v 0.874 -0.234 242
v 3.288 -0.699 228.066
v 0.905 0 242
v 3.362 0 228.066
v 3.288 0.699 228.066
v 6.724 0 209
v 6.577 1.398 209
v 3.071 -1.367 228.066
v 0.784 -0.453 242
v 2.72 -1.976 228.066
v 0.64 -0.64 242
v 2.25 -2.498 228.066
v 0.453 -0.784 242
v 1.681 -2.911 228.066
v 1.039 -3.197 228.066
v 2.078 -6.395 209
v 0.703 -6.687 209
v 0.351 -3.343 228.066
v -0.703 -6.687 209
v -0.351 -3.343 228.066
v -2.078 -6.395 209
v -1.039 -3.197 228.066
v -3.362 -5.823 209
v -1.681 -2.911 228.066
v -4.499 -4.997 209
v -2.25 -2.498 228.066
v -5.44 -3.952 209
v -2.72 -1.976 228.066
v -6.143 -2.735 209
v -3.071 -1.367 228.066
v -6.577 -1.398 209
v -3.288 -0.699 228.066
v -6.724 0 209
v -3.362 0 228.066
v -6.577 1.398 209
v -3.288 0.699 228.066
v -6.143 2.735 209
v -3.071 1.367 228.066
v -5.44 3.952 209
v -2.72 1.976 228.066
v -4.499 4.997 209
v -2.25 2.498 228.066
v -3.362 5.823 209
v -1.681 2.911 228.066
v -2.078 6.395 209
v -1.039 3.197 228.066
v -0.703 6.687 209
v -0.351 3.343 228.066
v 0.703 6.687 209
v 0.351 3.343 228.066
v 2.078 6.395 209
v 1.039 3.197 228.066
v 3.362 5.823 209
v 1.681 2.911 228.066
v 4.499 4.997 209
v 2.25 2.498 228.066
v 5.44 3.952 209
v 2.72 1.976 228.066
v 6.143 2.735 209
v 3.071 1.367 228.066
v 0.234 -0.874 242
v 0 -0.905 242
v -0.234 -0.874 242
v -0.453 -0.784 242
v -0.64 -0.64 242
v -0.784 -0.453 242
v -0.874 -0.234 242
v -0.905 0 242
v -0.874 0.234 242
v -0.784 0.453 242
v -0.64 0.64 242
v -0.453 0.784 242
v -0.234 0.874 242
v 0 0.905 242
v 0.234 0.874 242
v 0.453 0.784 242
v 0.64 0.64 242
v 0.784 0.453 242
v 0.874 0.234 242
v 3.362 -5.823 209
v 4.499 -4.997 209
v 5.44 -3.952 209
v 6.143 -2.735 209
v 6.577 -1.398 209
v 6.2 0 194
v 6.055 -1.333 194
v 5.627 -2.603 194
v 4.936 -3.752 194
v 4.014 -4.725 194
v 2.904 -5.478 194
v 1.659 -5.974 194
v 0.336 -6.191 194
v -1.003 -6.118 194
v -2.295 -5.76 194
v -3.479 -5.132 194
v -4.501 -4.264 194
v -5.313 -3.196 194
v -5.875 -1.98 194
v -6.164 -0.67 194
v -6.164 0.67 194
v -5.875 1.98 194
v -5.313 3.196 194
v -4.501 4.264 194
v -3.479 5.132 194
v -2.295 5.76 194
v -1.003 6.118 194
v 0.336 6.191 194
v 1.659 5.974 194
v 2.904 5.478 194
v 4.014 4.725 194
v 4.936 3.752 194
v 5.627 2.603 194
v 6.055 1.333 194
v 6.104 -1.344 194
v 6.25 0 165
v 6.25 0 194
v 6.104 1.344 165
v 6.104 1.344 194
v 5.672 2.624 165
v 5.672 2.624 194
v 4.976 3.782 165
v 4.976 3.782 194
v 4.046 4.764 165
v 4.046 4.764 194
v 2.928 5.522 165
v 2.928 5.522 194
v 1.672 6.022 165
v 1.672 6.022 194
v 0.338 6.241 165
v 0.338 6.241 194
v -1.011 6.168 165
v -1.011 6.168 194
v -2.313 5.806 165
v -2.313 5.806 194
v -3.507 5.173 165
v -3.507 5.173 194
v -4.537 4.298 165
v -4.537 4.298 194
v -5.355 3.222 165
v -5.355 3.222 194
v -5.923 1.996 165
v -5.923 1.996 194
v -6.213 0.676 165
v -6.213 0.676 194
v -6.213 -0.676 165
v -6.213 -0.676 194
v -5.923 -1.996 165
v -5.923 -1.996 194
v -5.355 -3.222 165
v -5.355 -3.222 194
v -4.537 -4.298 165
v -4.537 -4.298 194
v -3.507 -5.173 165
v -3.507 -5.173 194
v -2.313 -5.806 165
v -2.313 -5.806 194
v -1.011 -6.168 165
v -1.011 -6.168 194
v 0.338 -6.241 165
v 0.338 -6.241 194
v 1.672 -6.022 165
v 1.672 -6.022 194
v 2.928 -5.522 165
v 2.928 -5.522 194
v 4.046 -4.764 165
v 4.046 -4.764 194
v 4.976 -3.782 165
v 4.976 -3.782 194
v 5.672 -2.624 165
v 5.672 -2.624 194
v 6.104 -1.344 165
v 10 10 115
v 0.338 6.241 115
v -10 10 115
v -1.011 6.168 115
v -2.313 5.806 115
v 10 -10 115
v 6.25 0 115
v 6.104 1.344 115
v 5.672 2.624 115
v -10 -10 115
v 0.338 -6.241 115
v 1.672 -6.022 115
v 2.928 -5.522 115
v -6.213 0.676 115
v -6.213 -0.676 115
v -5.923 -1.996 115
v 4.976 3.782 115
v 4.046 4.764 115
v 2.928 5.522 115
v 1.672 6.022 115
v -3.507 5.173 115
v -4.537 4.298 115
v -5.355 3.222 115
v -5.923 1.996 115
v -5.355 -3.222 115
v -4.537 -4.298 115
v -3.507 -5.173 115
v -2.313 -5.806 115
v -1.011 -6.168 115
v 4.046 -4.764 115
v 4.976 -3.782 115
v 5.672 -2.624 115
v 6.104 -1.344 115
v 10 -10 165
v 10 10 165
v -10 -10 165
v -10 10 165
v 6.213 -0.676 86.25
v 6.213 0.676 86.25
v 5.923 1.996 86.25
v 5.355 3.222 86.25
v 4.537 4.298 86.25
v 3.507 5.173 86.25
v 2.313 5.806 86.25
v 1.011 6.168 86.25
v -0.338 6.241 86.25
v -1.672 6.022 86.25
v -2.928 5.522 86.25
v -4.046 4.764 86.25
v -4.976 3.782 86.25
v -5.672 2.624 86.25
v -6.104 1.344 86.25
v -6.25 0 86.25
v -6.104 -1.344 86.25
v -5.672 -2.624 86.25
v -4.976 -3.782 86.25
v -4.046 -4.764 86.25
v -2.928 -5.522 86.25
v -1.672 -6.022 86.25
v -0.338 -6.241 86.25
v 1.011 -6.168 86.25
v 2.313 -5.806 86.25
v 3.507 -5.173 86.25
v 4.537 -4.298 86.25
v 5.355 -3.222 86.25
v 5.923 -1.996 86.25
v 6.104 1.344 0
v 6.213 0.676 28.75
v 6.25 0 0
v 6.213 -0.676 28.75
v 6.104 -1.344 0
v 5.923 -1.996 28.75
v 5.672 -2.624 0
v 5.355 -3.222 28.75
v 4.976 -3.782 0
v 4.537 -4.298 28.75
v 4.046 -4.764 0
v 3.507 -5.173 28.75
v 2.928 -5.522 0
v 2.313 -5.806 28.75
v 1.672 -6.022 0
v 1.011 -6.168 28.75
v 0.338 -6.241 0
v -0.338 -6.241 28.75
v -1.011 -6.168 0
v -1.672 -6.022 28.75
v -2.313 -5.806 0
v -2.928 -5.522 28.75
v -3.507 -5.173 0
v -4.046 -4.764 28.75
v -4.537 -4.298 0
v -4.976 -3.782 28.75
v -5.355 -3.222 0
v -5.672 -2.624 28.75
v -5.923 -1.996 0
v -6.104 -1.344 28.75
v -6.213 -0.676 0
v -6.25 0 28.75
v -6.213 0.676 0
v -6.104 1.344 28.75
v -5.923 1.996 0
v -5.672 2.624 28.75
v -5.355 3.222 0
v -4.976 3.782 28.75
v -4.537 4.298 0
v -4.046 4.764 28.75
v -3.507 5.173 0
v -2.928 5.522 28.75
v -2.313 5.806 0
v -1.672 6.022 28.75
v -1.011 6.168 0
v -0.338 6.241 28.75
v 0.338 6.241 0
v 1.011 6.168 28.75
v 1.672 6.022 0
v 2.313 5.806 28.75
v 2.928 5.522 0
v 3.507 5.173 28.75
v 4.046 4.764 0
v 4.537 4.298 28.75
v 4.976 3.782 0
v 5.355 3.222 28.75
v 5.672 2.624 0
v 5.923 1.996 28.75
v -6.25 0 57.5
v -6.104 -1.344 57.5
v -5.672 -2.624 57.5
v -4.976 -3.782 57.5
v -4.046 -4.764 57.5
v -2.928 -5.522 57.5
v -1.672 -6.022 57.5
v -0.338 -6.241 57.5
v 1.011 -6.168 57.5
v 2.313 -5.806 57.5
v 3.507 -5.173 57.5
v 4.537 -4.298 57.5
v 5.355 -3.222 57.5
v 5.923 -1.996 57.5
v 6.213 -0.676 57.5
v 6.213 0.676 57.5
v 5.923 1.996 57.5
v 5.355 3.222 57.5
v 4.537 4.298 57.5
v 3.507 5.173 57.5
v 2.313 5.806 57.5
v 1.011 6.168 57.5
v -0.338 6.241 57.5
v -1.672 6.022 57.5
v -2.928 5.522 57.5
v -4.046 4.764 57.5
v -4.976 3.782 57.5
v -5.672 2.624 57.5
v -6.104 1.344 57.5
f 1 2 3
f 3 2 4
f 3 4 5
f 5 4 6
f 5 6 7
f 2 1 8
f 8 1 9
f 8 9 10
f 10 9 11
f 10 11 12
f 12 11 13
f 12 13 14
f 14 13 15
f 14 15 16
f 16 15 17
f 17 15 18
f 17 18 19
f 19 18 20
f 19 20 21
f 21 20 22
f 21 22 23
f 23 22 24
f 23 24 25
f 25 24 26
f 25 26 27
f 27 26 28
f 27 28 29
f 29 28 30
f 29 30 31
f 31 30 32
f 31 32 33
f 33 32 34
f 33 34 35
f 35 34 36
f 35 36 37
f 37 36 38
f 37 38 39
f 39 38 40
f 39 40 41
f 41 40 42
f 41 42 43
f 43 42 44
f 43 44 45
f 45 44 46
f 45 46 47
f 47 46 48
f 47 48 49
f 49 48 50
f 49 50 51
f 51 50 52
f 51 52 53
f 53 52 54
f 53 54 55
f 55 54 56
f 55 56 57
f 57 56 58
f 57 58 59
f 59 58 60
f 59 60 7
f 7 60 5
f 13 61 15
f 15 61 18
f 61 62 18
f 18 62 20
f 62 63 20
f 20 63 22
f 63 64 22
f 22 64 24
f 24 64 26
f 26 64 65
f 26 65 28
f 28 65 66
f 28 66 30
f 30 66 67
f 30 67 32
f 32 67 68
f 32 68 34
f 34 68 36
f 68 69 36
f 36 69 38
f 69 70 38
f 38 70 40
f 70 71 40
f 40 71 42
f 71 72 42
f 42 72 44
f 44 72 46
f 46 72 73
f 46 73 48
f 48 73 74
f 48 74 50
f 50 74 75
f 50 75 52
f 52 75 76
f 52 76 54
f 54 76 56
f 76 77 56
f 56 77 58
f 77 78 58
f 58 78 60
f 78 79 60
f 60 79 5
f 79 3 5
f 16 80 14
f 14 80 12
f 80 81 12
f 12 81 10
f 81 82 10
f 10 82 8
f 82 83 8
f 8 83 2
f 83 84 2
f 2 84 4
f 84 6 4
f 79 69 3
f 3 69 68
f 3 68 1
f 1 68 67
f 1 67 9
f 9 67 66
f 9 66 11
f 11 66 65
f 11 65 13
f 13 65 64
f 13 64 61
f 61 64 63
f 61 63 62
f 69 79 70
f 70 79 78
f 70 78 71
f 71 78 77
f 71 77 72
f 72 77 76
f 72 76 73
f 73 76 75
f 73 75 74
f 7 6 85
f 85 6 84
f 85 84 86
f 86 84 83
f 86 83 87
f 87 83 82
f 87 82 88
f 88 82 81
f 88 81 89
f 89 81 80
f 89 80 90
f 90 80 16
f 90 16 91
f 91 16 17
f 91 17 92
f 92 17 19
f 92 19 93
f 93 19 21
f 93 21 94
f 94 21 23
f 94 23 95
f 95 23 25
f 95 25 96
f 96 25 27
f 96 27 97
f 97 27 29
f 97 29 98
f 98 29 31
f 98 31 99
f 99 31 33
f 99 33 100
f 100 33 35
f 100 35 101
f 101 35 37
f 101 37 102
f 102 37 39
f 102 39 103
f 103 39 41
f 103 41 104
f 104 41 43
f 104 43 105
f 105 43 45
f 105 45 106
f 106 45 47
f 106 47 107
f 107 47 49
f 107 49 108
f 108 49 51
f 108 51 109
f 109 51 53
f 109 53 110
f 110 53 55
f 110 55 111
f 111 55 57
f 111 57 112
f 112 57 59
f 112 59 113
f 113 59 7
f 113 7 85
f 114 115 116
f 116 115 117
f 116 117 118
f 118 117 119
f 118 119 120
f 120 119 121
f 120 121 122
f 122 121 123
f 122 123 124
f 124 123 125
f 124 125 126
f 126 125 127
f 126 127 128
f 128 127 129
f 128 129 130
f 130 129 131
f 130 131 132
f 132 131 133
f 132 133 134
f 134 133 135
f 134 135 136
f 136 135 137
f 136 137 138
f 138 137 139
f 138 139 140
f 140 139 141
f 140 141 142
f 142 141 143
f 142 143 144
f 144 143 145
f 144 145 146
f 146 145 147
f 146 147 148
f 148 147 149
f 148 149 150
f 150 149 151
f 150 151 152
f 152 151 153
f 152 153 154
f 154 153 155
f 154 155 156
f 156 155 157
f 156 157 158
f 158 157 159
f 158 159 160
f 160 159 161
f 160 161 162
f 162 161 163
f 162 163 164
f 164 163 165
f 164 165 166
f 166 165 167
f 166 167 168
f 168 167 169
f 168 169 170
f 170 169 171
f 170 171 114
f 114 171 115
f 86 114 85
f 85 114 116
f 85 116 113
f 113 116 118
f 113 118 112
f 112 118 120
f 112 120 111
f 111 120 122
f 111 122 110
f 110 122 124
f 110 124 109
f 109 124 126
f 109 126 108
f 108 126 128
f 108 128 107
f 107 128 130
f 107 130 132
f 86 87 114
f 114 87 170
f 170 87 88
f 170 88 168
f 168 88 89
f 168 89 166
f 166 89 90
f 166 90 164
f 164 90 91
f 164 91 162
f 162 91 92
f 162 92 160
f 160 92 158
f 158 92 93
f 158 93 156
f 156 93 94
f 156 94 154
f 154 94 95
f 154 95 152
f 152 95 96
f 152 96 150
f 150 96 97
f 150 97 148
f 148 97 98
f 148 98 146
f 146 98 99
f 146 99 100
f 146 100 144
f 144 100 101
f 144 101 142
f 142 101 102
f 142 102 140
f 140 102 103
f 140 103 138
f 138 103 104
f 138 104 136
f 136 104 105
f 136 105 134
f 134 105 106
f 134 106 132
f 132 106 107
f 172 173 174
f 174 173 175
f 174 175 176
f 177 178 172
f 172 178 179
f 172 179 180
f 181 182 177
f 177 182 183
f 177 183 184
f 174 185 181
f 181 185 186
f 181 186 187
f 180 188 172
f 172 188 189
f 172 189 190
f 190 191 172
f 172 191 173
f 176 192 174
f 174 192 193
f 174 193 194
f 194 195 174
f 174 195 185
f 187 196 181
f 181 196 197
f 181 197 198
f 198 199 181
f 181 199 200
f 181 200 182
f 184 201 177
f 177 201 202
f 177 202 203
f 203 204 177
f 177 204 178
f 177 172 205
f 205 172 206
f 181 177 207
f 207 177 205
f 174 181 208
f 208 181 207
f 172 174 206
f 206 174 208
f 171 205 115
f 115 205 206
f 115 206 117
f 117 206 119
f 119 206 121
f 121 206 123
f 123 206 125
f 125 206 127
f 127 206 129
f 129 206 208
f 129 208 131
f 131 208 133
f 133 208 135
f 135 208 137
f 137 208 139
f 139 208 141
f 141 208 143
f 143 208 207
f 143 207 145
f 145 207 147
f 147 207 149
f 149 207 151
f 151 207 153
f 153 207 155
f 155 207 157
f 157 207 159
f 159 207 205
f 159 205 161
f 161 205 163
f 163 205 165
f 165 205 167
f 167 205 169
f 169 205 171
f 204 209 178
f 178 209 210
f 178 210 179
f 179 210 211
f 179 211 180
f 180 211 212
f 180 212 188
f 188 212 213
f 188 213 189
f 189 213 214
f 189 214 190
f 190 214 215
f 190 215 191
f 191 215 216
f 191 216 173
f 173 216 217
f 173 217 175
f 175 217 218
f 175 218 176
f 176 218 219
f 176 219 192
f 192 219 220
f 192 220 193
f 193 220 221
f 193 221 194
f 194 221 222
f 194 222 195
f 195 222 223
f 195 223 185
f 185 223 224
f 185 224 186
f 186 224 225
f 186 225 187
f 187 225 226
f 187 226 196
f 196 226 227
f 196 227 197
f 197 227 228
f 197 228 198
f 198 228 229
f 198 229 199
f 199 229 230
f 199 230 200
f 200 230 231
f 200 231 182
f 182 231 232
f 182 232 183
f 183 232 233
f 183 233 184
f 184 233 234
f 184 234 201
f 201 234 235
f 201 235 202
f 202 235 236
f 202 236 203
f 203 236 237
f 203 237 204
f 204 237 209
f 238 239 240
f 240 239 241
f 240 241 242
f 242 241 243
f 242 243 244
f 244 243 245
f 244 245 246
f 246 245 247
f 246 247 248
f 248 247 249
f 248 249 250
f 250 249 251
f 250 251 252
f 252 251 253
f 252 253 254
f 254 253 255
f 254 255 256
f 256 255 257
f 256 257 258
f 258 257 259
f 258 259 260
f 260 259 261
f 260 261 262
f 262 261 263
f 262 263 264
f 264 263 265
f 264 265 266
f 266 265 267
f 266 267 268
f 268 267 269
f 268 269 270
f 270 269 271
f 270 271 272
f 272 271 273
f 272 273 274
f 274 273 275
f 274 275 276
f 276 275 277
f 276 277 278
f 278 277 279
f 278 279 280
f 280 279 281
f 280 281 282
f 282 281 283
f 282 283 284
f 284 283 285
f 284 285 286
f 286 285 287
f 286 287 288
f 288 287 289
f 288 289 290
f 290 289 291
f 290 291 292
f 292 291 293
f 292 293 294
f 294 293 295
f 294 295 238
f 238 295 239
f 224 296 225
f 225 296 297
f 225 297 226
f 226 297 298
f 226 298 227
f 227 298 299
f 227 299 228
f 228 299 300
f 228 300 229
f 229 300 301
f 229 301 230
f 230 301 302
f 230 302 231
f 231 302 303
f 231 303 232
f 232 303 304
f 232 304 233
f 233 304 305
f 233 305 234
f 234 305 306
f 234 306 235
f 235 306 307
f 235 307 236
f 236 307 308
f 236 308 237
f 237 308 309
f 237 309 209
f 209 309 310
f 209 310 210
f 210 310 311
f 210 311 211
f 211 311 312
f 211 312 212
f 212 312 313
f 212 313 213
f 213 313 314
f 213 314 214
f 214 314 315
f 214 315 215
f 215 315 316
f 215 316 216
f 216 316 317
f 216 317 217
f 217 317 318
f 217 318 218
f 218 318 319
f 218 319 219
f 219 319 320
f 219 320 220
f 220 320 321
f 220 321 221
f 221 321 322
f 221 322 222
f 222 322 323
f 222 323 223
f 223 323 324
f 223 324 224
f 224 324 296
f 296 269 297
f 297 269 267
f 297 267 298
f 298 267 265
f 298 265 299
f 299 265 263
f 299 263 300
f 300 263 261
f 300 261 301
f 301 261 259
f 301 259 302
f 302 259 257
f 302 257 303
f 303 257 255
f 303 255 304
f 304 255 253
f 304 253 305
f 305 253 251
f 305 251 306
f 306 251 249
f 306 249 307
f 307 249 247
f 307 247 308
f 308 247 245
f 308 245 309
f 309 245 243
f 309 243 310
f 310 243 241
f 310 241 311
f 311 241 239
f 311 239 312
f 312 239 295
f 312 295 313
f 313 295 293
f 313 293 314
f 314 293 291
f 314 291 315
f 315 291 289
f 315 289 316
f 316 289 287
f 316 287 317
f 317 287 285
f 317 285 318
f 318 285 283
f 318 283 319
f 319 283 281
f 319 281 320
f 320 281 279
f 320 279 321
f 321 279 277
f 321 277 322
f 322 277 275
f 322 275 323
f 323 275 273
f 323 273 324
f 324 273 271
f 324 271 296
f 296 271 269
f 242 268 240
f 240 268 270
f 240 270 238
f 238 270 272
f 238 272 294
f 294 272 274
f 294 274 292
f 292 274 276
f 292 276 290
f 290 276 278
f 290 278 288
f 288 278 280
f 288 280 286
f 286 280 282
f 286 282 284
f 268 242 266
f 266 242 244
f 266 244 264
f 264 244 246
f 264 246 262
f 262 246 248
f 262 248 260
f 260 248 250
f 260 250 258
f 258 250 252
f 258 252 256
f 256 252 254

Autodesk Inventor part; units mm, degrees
ref_plane "YZ Plane" through (0, 0, 0) normal (1, 0, 0) x (0, 1, 0)
ref_plane "XZ Plane" through (0, 0, 0) normal (0, 1, 0) x (-1, 0, 0)
ref_plane "XY Plane" through (0, 0, 0) normal (0, 0, 1) x (1, 0, 0)
sketch "スケッチ1" plane through (0, 0, 0) normal (0, 0, 1) x (1, 0, 0)
  circle A0 centre (0, 0) radius 6.25
  dimension "d0" = 12.5
extrude "押し出し1" add sketch "スケッチ1" along normal blind 115
sketch "スケッチ2" plane through (0, 0, 115) normal (0, 0, 1) x (1, 0, 0)
  line L0 (10, -10) -> (-10, -10)
  line L1 (-10, -10) -> (-10, 10)
  line L2 (-10, 10) -> (10, 10)
  line L3 (10, 10) -> (10, -10)
  line L4 (10, -10) -> (-10, 10) construction
  line L5 (-10, -10) -> (10, 10) construction
  point P0 (0, 0)
  dimension "d3" = 20
  dimension "d4" = 20
extrude "押し出し2" add sketch "スケッチ2" along normal blind 50
sketch "スケッチ3" plane through (0, 0, 165) normal (0, 0, 1) x (1, 0, 0)
  circle A0 centre (0, 0) radius 6.25
  dimension "d7" = 12.5
extrude "押し出し3" add sketch "スケッチ3" along normal blind 29
sketch "スケッチ4" plane through (0, 0, 194) normal (0, 0, 1) x (1, 0, 0)
  circle A0 centre (0, 0) radius 6.2
  dimension "d11" = 12.4
extrude "押し出し4" add sketch "スケッチ4" along normal blind 15 draft 2
sketch "スケッチ5" plane through (0, 0, 209) normal (0, 0, 1) x (1, 0, 0)
  circle A0 centre (0, 0) radius 6.7238
extrude "押し出し5" add sketch "スケッチ5" along normal blind 33 draft -10
properties part number "Coordinate"
